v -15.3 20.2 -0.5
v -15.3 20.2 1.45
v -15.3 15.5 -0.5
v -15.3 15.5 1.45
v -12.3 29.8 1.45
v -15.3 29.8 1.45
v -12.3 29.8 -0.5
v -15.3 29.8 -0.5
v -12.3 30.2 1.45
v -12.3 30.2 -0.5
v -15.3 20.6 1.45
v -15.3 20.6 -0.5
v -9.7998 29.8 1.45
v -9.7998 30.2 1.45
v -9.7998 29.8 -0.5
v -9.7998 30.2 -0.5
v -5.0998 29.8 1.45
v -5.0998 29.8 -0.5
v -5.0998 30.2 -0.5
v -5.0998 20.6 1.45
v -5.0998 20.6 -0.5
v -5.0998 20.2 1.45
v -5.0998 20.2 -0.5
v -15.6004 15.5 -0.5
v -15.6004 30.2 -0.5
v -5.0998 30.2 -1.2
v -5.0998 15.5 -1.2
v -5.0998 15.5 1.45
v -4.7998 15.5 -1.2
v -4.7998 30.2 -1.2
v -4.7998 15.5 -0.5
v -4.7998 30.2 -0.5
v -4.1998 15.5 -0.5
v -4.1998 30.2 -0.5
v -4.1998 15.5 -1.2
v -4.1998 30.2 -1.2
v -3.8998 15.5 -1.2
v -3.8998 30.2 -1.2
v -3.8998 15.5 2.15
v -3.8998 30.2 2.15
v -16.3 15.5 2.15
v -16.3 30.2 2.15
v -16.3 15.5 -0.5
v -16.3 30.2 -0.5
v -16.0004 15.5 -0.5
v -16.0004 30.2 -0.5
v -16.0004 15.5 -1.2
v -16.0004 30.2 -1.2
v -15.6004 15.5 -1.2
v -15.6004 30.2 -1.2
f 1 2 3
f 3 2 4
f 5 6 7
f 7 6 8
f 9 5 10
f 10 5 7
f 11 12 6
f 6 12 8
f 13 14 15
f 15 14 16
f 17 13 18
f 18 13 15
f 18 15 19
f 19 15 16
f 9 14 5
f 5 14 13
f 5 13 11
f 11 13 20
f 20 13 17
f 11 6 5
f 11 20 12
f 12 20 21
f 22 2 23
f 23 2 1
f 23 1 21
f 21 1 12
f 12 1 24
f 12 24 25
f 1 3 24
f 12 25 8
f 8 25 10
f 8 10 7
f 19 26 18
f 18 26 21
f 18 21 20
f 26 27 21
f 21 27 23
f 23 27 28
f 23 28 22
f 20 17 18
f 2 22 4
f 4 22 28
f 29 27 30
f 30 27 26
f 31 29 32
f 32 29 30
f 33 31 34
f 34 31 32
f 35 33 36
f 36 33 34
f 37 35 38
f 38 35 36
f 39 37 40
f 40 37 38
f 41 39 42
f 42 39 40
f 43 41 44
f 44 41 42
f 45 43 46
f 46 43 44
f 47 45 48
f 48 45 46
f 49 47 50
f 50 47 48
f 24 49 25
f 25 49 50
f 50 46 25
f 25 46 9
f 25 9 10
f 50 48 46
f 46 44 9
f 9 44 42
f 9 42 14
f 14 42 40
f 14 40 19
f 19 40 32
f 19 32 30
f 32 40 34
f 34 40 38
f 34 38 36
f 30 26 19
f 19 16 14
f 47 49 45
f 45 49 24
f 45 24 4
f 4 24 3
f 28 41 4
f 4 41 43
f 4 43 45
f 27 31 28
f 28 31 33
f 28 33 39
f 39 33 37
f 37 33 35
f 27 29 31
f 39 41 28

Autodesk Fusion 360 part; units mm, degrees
sketch "Sketch1" plane through (0, 22, 0) normal (0, 1, 0) x (-1, 0, 0)
  line L0 (11.5698, 0.25) -> (15.3, 0.25)
  line L1 (15.3, 0.25) -> (15.3, -0.5)
  line L2 (15.3, -0.5) -> (15.6004, -0.5)
  line L3 (15.6004, -0.5) -> (15.6004, -1.2)
  line L4 (15.6004, -1.2) -> (16.0004, -1.2)
  line L5 (16.0004, -1.2) -> (16.0004, -0.5)
  line L6 (16.0004, -0.5) -> (16.3, -0.5)
  line L7 (16.3, -0.5) -> (16.3, 1.05)
  line L8 (16.3, 1.05) -> (5, 1.05)
  line L9 (11.5698, -1.2) -> (11.5698, 0.25)
  line L10 (11.5698, -0.6208) -> (11.2698, -0.6208) construction
  line L11 (11.2698, -0.5) -> (11.2698, -1.2)
  line L12 (11.2698, -0.5) -> (10.5698, -0.5)
  line L13 (10.5698, -0.5) -> (10.5698, -1.2)
  line L14 (10.5698, -0.678) -> (10.2698, -0.678) construction
  line L15 (10.2698, 1.05) -> (10.2698, -1.2)
  line L16 (10.2698, 1.05) -> (16.3, 1.05)
  line L17 (16.3, -0.5) -> (16.0004, -0.5)
  line L18 (16.0004, -1.2) -> (15.6004, -1.2)
  line L19 (15.6004, -0.5) -> (15.3, -0.5)
  line L20 (15.3, 0.25) -> (11.5698, 0.25)
  line L21 (11.5698, -1.2) -> (11.2698, -1.2)
  line L22 (11.5698, -1.2) -> (11.2698, -1.2)
  line L23 (11.2698, -0.5) -> (10.5698, -0.5)
  line L24 (10.5698, -1.2) -> (10.2698, -1.2)
  line L25 (10.2698, 1.05) -> (16.3, 1.05)
  line L26 (16.3, -0.5) -> (16.0004, -0.5)
  line L27 (16.0004, -1.2) -> (15.6004, -1.2)
  line L28 (15.6004, -0.5) -> (15.3, -0.5)
  line L29 (15.3, 0.25) -> (11.5698, 0.25)
  dimension "d14" = 0.3
  dimension "d15" = 0.7
  dimension "d16" = 0.3
extrude "Extrude1" add sketch "Sketch1" along normal blind 8.2 makes body 1
copy_body "Body->Comp1" bodies 1 removing the originals makes body 2 in component "Component"
move_face "OffsetFaces1" offset 0.3 1 faces at (-12.8132, 24.7333, 0.25) on bodies 2 in component "Component"
move_face "OffsetFaces2" offset -0.4 1 faces at (-12.2798, 27.4667, 1.05) on bodies 2 in component "Component"
move_face "OffsetFaces3" offset 3.3 1 faces at (-10.2698, 24.7333, 0.0333) on bodies 2 in component "Component"
move_face "OffsetFaces4" offset -3.3 1 faces at (-10.5698, 24.7333, -0.7333) on bodies 2 in component "Component"
move_face "OffsetFaces5" offset 3.3 1 faces at (-11.2698, 24.7333, -0.7333) on bodies 2 in component "Component"
move_face "OffsetFaces6" offset -3.3 1 faces at (-11.5698, 27.4667, -0.8167) on bodies 2 in component "Component"
move_face "OffsetFaces7" offset -4.2 1 faces at (-10.5132, 22, 0.4167) on bodies 2 in component "Component"
move_face "OffsetFaces8" offset -0.1 1 faces at (-8.2698, 28.8667, -0.4333) on bodies 2 in component "Component"
move_face "OffsetFaces9" offset 0.1 1 faces at (-7.9698, 27.5333, -0.7333) on bodies 2 in component "Component"
move_face "OffsetFaces10" offset 4.255 1 faces at (-10.4798, 26.2, 0.4167) on bodies 2 in component "Component"
move_face "OffsetFaces11" offset 0.3 1 faces at (-6.9698, 24.6967, 0.0333) on bodies 2 in component "Component"
move_face "OffsetFaces12" offset 0.3 1 faces at (-7.8698, 24.6967, -0.7333) on bodies 2 in component "Component"
move_face "OffsetFaces13" offset -0.3 1 faces at (-7.2698, 24.6967, -0.7333) on bodies 2 in component "Component"
move_face "OffsetFaces14" offset -0.3 1 faces at (-8.1698, 24.6967, -0.8167) on bodies 2 in component "Component"
move_face "OffsetFaces15" offset 2.77 1 faces at (-6.6698, 24.6967, 0.0333) on bodies 2 in component "Component"
move_face "OffsetFaces16" offset -2.77 1 faces at (-6.9698, 24.6967, -0.7333) on bodies 2 in component "Component"
move_face "OffsetFaces17" offset 2.77 1 faces at (-7.5698, 24.6967, -0.7333) on bodies 2 in component "Component"
move_face "OffsetFaces18" offset -2.77 1 faces at (-7.8698, 24.6967, -0.8167) on bodies 2 in component "Component"
move_face "OffsetFaces19" offset 6.445 1 faces at (-8.4332, 21.945, 0.4167) on bodies 2 in component "Component"
move_face "OffsetFaces20" offset 1.5 1 faces at (-12.1666, 20.4, 0.65) on bodies 2 in component "Component"
move_face "OffsetFaces21" offset -1.5 1 faces at (-8.4998, 20.4, -0.05) on bodies 2 in component "Component"
sketch "Sketch2" plane through (0, 0, 1.45) normal (0, 0, -1) x (1, 0, 0)
  line L0 (-5.0998, -15.5) -> (-15.3, -15.5)
  line L1 (-15.3, -15.5) -> (-15.3, -30.2)
  line L2 (-15.3, -30.2) -> (-5.0998, -30.2)
  line L3 (-5.0998, -30.2) -> (-5.0998, -15.5)
  line L4 (-5.0998, -15.5) -> (-5.0998, -26.3) construction
  line L5 (-5.0998, -26.3) -> (-15.3, -26.3)
  line L6 (-15.3, -26.3) -> (-15.3, -25.3)
  line L7 (-15.3, -25.3) -> (-5.0998, -25.3)
  line L8 (-5.0998, -25.3) -> (-5.0998, -26.3)
  dimension "d40" = 10.8
  dimension "d41" = 1
extrude "Extrude1'" add sketch "Sketch2" along normal blind 1.5 contours L1 L3 L5 L6 L7 L8 bodies 2 in component "Component"
move_face "OffsetFaces22" offset 6 1 faces at (-11.8999, 25.3, 0.95) on bodies 2 in component "Component"
move_face "OffsetFaces23" offset -6 1 faces at (-8.4998, 26.3, 0.45) on bodies 2 in component "Component"
move_face "OffsetFaces24" offset 0.3 1 faces at (-8.4998, 20.3, 0.45) on bodies 2 in component "Component"
move_face "OffsetFaces25" offset -0.3 1 faces at (-8.4998, 19.3, 0.45) on bodies 2 in component "Component"
move_face "OffsetFaces26" offset -0.6 1 faces at (-8.4998, 19.6, 0.45) on bodies 2 in component "Component"
sketch "Sketch3" plane through (0, 0, 1.45) normal (0, 0, -1) x (1, 0, 0)
  line L0 (-5.0998, -20.6) -> (-15.3, -20.6)
  line L1 (-15.3, -20.6) -> (-15.3, -30.2)
  line L2 (-15.3, -30.2) -> (-5.0998, -30.2)
  line L3 (-5.0998, -30.2) -> (-5.0998, -20.6)
  line L4 (-5.0998, -30.2) -> (-8.3998, -30.2)
  line L5 (-8.3998, -30.2) -> (-8.3998, -29.8)
  line L6 (-8.3998, -29.8) -> (-5.0998, -29.8)
  line L7 (-5.0998, -29.8) -> (-5.0998, -30.2)
  line L8 (-15.3, -30.2) -> (-10.9, -30.2)
  line L9 (-10.9, -30.2) -> (-10.9, -29.8)
  line L10 (-10.9, -29.8) -> (-15.3, -29.8)
  line L11 (-15.3, -29.8) -> (-15.3, -30.2)
  dimension "d49" = 3.3
  dimension "d50" = 0.4
  dimension "d51" = 4.4
  dimension "d52" = 0.4
extrude "Extrude2" add sketch "Sketch3" along normal blind 1.95 contours L2 L3 L4 L5 L6 L7 | L1 L2 L8 L9 L10 L11 bodies 2 in component "Component"
move_face "OffsetFaces27" offset 0.45 1 faces at (-11.8999, 20.3333, -0.05) on bodies 2 in component "Component"
move_face "OffsetFaces28" offset -1.4 1 faces at (-10.9, 30.0667, 0.8) on bodies 2 in component "Component"
move_face "OffsetFaces29" offset 1.4 1 faces at (-8.3998, 30.0667, 0.8) on bodies 2 in component "Component"
component "Component" placed x (1, 0, 0) y (0, 1, 0) z (0, 0, 1) at (0, 0, 0)
